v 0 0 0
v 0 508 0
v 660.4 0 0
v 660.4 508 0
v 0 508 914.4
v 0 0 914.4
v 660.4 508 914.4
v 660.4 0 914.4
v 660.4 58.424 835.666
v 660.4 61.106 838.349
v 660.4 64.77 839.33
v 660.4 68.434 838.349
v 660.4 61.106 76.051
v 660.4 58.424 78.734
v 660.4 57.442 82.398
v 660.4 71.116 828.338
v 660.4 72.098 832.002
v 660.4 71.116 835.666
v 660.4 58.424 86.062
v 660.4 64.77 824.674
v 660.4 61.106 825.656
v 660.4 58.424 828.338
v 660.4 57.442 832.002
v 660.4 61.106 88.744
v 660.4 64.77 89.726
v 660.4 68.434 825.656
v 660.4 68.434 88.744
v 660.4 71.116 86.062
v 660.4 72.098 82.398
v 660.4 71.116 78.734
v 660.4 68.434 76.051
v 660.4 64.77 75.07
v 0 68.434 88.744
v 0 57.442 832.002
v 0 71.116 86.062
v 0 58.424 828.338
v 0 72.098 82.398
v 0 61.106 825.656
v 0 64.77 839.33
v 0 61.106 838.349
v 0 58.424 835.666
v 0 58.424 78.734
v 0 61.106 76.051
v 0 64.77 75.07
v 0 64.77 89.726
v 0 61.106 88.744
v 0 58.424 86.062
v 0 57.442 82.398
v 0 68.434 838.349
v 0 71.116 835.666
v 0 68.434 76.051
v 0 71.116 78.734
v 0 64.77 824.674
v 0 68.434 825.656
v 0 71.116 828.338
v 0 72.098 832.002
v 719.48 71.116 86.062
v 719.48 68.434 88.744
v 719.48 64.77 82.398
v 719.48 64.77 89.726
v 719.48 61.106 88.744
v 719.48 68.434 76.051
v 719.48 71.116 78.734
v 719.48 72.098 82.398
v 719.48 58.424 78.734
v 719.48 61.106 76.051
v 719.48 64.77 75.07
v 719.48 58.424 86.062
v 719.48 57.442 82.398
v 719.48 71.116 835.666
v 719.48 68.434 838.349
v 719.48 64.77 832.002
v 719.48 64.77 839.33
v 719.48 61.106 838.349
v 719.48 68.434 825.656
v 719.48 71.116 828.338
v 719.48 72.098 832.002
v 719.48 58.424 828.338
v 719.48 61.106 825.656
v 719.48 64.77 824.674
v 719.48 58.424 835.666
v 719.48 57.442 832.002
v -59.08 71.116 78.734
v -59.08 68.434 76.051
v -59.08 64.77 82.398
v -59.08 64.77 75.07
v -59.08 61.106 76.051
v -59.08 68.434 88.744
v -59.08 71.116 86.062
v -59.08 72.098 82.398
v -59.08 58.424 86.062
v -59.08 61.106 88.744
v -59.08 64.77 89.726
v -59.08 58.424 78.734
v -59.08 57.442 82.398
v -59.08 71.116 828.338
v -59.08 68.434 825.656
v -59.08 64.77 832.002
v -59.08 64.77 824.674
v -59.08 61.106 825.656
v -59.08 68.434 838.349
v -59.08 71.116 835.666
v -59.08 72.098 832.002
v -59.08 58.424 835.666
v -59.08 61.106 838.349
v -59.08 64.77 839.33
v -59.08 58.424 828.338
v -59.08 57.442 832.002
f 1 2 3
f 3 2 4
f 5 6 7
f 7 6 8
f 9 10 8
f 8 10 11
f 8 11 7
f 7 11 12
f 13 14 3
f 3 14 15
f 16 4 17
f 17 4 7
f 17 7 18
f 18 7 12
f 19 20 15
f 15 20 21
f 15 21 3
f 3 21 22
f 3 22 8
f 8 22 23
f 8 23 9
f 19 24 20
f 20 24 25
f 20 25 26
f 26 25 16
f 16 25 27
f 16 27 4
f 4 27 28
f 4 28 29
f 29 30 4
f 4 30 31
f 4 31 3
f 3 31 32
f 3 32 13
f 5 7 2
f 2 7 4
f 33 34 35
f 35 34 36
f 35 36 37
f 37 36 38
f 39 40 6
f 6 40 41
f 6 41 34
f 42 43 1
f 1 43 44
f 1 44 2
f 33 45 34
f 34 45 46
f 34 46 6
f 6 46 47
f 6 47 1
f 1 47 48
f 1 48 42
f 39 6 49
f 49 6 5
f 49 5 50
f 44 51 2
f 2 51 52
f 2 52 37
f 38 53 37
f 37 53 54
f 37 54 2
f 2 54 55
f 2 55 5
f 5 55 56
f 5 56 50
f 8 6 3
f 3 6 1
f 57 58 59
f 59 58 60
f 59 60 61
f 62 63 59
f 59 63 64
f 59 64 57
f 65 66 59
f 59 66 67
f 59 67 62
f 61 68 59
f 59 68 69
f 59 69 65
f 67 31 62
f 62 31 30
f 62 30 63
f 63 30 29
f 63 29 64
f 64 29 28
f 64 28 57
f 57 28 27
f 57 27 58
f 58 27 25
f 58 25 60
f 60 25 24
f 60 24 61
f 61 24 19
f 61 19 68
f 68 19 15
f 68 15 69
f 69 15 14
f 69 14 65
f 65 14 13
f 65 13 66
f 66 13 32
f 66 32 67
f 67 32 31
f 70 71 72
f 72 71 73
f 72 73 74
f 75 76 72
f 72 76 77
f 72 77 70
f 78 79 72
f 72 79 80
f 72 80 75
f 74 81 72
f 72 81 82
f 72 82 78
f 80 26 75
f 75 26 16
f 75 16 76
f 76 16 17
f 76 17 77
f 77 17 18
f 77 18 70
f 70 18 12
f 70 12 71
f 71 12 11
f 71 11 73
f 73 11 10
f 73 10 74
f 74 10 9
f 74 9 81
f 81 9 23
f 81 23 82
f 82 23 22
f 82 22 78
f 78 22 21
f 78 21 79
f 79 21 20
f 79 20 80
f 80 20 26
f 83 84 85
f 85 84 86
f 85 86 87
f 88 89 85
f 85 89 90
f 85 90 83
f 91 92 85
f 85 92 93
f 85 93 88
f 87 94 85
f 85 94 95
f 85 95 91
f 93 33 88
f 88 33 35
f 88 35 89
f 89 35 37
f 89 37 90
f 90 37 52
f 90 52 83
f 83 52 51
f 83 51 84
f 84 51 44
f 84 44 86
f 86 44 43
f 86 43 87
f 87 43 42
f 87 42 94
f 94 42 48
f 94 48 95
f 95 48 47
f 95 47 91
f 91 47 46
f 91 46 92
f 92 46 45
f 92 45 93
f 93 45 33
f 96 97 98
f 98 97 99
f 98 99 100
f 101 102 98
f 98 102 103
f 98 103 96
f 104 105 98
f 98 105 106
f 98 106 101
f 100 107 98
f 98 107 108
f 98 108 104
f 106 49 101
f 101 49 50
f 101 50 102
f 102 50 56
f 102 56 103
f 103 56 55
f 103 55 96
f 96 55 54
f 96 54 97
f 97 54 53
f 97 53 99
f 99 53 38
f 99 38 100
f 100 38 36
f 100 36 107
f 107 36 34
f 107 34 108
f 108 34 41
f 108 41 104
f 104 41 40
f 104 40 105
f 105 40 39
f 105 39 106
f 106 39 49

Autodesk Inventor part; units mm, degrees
ref_plane "YZ Plane" through (0, 0, 0) normal (1, 0, 0) x (0, 1, 0)
ref_plane "XZ Plane" through (0, 0, 0) normal (0, 1, 0) x (-1, 0, 0)
ref_plane "XY Plane" through (0, 0, 0) normal (0, 0, 1) x (1, 0, 0)
sketch "Sketch1" plane through (0, 0, 0) normal (0, 0, 1) x (1, 0, 0)
  line L0 (0, 0) -> (660.4, 0)
  line L1 (660.4, 0) -> (660.4, 508)
  line L2 (660.4, 508) -> (0, 508)
  line L3 (0, 508) -> (0, 0)
  dimension "d0" = 660.4
  dimension "d1" = 508
extrude "Extrusion1" add sketch "Sketch1" along normal blind 914.4
sketch "Sketch2" plane through (660.4, 0, 0) normal (1, 0, 0) x (0, 0, -1)
  circle A0 centre (-832.0024, 64.77) radius 7.3279
  line L0 (-914.4, 0) -> (-914.4, 508) projected
  line L1 (0, 0) -> (-914.4, 0) projected
  line L2 (0, 0) -> (-914.4, 0) projected
  line L3 (-457.2, 0) -> (-457.2, 118.7957)
  circle A1 centre (-82.3976, 64.77) radius 7.3279
  dimension "d4" = 14.6558
  dimension "d5" = 82.3976
  dimension "d6" = 64.77
extrude "Extrusion2" add sketch "Sketch2" along normal blind 59.0804
sketch "Sketch3" plane through (0, 0, 0) normal (-1, 0, 0) x (0, 0, 1)
  line L0 (0, 508) -> (0, 0) projected
  line L1 (0, 0) -> (914.4, 0) projected
  line L2 (914.4, 508) -> (914.4, 0) projected
  line L3 (0, 508) -> (914.4, 508) projected
  circle A0 centre (832.0024, 64.77) radius 7.3279 projected
  circle A1 centre (82.3976, 64.77) radius 7.3279 projected
extrude "Extrusion3" add sketch "Sketch3" along normal blind 59.0804 contours A0 | A1
properties part number "Frame"
